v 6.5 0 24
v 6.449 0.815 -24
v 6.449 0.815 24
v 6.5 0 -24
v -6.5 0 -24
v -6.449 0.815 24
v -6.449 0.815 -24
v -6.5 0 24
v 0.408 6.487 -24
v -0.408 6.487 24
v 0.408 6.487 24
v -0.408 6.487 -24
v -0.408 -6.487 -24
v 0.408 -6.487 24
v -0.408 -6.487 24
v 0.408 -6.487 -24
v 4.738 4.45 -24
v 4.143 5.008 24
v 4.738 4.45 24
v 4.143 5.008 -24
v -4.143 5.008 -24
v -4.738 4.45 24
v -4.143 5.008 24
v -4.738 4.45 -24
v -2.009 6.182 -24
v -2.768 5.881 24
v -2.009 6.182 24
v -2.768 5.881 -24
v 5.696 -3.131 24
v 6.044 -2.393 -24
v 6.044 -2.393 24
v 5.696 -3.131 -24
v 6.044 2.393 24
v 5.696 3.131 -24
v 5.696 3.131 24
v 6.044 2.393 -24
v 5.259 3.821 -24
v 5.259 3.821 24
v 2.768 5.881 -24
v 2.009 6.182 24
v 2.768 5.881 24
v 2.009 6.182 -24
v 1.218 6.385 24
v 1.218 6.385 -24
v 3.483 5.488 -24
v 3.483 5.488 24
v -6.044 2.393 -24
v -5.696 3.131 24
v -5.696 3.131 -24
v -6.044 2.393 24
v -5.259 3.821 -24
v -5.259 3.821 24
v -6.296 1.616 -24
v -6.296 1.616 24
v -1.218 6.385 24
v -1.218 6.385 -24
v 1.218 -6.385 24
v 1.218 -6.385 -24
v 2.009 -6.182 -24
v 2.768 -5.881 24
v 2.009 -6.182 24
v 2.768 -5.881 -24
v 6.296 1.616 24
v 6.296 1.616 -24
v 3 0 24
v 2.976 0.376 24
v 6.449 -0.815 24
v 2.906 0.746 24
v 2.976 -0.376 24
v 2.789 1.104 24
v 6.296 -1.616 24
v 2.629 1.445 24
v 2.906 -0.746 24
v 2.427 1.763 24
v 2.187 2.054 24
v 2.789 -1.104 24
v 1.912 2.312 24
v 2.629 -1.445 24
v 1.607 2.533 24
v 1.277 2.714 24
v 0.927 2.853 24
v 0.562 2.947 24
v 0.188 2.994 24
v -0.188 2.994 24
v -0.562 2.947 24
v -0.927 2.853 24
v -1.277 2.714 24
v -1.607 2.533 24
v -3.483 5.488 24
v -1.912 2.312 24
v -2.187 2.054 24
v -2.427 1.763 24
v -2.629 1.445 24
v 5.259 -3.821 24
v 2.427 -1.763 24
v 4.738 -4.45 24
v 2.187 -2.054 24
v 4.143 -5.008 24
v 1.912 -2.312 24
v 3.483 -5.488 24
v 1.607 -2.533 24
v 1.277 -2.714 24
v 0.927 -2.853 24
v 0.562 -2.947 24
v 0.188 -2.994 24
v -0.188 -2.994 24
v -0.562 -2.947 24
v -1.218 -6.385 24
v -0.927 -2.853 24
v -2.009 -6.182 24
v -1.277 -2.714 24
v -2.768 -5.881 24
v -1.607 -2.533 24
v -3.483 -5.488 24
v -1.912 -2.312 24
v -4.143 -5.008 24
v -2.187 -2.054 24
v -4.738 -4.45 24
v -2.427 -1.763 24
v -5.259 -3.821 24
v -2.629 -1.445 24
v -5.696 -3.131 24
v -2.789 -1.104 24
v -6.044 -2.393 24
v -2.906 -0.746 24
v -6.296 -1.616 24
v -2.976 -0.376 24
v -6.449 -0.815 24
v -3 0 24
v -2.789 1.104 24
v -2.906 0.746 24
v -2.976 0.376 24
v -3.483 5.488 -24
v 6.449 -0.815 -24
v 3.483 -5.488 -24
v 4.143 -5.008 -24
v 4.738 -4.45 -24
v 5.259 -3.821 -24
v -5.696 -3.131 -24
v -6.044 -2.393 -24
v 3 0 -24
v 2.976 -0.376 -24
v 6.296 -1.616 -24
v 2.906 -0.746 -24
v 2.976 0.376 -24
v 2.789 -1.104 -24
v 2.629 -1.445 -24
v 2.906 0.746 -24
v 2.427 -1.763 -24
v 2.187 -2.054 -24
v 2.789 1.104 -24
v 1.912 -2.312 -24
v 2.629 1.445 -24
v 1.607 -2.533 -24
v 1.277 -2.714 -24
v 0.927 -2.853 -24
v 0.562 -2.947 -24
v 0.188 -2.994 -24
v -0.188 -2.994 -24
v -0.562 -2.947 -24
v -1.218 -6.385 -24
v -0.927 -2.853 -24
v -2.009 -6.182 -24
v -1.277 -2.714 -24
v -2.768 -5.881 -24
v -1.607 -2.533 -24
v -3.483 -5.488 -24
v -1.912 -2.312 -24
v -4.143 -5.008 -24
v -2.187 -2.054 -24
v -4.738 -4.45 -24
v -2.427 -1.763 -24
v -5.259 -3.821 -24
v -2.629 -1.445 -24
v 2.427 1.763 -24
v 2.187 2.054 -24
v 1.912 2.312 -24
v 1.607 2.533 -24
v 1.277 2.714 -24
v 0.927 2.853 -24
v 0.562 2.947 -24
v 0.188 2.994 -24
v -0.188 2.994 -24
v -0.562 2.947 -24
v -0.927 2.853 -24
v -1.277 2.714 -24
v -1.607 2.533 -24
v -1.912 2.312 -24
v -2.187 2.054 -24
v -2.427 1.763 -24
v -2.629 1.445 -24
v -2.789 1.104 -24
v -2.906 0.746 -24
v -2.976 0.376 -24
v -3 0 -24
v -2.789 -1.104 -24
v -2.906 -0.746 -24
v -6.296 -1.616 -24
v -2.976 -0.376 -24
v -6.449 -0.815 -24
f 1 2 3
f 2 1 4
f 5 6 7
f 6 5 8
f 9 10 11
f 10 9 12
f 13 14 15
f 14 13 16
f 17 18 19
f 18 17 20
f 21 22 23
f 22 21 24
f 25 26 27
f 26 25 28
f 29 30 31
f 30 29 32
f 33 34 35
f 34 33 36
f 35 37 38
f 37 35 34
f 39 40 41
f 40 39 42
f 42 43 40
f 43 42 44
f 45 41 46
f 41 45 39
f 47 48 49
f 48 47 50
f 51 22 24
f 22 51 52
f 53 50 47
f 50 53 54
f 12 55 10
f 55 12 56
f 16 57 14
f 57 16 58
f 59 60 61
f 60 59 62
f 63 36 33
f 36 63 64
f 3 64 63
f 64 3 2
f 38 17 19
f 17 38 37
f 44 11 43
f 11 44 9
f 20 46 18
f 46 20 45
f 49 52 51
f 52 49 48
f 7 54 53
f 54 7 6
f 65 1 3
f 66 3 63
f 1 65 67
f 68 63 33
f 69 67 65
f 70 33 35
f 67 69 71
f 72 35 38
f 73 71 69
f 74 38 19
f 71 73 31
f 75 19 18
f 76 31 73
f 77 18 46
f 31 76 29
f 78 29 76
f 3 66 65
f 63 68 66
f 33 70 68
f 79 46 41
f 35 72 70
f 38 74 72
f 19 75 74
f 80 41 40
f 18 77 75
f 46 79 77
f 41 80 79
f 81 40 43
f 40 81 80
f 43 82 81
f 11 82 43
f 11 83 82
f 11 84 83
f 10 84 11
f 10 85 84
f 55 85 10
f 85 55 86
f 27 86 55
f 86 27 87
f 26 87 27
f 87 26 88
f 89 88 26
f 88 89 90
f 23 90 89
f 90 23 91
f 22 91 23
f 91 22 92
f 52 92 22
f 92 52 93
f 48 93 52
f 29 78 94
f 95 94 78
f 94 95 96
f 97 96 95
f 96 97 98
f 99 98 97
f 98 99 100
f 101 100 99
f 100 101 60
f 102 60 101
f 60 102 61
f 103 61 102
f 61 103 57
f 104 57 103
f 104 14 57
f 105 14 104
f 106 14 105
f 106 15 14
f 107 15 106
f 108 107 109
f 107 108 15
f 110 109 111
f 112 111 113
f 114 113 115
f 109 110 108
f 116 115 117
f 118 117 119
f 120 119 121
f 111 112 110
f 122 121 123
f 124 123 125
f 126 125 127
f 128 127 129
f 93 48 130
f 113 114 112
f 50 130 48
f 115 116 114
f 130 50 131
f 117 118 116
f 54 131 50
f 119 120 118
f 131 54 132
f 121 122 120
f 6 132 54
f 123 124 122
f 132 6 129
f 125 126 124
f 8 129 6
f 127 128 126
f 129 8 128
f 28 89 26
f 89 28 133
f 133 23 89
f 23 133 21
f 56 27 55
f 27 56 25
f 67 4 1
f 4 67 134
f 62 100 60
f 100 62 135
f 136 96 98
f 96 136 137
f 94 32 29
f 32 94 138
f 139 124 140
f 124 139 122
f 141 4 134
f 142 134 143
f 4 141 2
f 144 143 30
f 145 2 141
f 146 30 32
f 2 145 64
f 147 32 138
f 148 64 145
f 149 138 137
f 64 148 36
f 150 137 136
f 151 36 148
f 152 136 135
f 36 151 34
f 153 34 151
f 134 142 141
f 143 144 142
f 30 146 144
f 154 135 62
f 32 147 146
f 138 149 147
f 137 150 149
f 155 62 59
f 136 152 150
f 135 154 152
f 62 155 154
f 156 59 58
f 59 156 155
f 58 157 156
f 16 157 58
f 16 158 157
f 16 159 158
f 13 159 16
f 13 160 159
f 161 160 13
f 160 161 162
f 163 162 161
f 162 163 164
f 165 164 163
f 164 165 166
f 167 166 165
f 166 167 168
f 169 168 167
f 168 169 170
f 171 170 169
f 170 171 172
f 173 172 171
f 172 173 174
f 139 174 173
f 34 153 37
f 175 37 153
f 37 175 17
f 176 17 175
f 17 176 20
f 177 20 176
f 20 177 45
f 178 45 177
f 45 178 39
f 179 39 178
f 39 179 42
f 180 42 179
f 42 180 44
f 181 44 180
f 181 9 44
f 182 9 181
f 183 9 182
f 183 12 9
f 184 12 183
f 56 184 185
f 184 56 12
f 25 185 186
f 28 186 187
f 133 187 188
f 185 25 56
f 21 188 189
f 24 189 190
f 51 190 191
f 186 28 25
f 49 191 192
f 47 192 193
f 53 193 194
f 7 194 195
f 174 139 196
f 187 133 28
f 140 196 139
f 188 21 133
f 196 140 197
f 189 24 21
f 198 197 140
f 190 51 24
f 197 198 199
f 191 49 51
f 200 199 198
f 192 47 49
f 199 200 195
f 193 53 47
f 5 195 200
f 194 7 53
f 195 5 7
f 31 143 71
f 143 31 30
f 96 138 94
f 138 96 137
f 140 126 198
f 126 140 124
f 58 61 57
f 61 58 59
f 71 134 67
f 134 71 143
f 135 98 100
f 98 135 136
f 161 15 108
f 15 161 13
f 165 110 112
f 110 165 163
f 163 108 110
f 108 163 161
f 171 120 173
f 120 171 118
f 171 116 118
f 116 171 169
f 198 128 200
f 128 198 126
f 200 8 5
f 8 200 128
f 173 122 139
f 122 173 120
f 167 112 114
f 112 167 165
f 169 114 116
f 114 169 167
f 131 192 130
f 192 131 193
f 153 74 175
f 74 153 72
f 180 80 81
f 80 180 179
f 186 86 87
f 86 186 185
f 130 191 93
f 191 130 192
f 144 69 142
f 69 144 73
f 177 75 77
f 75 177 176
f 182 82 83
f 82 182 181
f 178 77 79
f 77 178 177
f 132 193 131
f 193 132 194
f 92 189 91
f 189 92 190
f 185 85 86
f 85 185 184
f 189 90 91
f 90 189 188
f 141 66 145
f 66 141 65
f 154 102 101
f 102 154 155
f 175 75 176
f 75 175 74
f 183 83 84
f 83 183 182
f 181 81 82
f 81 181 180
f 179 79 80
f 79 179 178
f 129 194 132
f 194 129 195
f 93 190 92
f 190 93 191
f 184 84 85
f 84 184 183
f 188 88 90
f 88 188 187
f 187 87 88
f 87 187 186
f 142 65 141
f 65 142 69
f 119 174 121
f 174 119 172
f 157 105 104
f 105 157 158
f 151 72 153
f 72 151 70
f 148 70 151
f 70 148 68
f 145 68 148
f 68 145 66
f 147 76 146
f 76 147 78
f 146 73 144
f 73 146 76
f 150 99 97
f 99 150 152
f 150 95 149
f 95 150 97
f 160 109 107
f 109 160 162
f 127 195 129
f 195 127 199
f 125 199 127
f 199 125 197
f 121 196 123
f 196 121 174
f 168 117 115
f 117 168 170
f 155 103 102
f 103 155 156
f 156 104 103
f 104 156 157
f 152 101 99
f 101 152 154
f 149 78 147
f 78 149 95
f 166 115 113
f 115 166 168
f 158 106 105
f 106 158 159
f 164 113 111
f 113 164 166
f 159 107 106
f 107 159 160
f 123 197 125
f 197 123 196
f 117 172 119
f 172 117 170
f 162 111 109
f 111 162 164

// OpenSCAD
$fn = 50;


difference() {
	union() {
		translate(v = [0, 0, -24.0000000000]) {
			cylinder(h = 48, r = 6.5000000000);
		}
	}
	union() {
		translate(v = [0, 0, -100.0000000000]) {
			cylinder(h = 200, r = 3);
		}
	}
}
